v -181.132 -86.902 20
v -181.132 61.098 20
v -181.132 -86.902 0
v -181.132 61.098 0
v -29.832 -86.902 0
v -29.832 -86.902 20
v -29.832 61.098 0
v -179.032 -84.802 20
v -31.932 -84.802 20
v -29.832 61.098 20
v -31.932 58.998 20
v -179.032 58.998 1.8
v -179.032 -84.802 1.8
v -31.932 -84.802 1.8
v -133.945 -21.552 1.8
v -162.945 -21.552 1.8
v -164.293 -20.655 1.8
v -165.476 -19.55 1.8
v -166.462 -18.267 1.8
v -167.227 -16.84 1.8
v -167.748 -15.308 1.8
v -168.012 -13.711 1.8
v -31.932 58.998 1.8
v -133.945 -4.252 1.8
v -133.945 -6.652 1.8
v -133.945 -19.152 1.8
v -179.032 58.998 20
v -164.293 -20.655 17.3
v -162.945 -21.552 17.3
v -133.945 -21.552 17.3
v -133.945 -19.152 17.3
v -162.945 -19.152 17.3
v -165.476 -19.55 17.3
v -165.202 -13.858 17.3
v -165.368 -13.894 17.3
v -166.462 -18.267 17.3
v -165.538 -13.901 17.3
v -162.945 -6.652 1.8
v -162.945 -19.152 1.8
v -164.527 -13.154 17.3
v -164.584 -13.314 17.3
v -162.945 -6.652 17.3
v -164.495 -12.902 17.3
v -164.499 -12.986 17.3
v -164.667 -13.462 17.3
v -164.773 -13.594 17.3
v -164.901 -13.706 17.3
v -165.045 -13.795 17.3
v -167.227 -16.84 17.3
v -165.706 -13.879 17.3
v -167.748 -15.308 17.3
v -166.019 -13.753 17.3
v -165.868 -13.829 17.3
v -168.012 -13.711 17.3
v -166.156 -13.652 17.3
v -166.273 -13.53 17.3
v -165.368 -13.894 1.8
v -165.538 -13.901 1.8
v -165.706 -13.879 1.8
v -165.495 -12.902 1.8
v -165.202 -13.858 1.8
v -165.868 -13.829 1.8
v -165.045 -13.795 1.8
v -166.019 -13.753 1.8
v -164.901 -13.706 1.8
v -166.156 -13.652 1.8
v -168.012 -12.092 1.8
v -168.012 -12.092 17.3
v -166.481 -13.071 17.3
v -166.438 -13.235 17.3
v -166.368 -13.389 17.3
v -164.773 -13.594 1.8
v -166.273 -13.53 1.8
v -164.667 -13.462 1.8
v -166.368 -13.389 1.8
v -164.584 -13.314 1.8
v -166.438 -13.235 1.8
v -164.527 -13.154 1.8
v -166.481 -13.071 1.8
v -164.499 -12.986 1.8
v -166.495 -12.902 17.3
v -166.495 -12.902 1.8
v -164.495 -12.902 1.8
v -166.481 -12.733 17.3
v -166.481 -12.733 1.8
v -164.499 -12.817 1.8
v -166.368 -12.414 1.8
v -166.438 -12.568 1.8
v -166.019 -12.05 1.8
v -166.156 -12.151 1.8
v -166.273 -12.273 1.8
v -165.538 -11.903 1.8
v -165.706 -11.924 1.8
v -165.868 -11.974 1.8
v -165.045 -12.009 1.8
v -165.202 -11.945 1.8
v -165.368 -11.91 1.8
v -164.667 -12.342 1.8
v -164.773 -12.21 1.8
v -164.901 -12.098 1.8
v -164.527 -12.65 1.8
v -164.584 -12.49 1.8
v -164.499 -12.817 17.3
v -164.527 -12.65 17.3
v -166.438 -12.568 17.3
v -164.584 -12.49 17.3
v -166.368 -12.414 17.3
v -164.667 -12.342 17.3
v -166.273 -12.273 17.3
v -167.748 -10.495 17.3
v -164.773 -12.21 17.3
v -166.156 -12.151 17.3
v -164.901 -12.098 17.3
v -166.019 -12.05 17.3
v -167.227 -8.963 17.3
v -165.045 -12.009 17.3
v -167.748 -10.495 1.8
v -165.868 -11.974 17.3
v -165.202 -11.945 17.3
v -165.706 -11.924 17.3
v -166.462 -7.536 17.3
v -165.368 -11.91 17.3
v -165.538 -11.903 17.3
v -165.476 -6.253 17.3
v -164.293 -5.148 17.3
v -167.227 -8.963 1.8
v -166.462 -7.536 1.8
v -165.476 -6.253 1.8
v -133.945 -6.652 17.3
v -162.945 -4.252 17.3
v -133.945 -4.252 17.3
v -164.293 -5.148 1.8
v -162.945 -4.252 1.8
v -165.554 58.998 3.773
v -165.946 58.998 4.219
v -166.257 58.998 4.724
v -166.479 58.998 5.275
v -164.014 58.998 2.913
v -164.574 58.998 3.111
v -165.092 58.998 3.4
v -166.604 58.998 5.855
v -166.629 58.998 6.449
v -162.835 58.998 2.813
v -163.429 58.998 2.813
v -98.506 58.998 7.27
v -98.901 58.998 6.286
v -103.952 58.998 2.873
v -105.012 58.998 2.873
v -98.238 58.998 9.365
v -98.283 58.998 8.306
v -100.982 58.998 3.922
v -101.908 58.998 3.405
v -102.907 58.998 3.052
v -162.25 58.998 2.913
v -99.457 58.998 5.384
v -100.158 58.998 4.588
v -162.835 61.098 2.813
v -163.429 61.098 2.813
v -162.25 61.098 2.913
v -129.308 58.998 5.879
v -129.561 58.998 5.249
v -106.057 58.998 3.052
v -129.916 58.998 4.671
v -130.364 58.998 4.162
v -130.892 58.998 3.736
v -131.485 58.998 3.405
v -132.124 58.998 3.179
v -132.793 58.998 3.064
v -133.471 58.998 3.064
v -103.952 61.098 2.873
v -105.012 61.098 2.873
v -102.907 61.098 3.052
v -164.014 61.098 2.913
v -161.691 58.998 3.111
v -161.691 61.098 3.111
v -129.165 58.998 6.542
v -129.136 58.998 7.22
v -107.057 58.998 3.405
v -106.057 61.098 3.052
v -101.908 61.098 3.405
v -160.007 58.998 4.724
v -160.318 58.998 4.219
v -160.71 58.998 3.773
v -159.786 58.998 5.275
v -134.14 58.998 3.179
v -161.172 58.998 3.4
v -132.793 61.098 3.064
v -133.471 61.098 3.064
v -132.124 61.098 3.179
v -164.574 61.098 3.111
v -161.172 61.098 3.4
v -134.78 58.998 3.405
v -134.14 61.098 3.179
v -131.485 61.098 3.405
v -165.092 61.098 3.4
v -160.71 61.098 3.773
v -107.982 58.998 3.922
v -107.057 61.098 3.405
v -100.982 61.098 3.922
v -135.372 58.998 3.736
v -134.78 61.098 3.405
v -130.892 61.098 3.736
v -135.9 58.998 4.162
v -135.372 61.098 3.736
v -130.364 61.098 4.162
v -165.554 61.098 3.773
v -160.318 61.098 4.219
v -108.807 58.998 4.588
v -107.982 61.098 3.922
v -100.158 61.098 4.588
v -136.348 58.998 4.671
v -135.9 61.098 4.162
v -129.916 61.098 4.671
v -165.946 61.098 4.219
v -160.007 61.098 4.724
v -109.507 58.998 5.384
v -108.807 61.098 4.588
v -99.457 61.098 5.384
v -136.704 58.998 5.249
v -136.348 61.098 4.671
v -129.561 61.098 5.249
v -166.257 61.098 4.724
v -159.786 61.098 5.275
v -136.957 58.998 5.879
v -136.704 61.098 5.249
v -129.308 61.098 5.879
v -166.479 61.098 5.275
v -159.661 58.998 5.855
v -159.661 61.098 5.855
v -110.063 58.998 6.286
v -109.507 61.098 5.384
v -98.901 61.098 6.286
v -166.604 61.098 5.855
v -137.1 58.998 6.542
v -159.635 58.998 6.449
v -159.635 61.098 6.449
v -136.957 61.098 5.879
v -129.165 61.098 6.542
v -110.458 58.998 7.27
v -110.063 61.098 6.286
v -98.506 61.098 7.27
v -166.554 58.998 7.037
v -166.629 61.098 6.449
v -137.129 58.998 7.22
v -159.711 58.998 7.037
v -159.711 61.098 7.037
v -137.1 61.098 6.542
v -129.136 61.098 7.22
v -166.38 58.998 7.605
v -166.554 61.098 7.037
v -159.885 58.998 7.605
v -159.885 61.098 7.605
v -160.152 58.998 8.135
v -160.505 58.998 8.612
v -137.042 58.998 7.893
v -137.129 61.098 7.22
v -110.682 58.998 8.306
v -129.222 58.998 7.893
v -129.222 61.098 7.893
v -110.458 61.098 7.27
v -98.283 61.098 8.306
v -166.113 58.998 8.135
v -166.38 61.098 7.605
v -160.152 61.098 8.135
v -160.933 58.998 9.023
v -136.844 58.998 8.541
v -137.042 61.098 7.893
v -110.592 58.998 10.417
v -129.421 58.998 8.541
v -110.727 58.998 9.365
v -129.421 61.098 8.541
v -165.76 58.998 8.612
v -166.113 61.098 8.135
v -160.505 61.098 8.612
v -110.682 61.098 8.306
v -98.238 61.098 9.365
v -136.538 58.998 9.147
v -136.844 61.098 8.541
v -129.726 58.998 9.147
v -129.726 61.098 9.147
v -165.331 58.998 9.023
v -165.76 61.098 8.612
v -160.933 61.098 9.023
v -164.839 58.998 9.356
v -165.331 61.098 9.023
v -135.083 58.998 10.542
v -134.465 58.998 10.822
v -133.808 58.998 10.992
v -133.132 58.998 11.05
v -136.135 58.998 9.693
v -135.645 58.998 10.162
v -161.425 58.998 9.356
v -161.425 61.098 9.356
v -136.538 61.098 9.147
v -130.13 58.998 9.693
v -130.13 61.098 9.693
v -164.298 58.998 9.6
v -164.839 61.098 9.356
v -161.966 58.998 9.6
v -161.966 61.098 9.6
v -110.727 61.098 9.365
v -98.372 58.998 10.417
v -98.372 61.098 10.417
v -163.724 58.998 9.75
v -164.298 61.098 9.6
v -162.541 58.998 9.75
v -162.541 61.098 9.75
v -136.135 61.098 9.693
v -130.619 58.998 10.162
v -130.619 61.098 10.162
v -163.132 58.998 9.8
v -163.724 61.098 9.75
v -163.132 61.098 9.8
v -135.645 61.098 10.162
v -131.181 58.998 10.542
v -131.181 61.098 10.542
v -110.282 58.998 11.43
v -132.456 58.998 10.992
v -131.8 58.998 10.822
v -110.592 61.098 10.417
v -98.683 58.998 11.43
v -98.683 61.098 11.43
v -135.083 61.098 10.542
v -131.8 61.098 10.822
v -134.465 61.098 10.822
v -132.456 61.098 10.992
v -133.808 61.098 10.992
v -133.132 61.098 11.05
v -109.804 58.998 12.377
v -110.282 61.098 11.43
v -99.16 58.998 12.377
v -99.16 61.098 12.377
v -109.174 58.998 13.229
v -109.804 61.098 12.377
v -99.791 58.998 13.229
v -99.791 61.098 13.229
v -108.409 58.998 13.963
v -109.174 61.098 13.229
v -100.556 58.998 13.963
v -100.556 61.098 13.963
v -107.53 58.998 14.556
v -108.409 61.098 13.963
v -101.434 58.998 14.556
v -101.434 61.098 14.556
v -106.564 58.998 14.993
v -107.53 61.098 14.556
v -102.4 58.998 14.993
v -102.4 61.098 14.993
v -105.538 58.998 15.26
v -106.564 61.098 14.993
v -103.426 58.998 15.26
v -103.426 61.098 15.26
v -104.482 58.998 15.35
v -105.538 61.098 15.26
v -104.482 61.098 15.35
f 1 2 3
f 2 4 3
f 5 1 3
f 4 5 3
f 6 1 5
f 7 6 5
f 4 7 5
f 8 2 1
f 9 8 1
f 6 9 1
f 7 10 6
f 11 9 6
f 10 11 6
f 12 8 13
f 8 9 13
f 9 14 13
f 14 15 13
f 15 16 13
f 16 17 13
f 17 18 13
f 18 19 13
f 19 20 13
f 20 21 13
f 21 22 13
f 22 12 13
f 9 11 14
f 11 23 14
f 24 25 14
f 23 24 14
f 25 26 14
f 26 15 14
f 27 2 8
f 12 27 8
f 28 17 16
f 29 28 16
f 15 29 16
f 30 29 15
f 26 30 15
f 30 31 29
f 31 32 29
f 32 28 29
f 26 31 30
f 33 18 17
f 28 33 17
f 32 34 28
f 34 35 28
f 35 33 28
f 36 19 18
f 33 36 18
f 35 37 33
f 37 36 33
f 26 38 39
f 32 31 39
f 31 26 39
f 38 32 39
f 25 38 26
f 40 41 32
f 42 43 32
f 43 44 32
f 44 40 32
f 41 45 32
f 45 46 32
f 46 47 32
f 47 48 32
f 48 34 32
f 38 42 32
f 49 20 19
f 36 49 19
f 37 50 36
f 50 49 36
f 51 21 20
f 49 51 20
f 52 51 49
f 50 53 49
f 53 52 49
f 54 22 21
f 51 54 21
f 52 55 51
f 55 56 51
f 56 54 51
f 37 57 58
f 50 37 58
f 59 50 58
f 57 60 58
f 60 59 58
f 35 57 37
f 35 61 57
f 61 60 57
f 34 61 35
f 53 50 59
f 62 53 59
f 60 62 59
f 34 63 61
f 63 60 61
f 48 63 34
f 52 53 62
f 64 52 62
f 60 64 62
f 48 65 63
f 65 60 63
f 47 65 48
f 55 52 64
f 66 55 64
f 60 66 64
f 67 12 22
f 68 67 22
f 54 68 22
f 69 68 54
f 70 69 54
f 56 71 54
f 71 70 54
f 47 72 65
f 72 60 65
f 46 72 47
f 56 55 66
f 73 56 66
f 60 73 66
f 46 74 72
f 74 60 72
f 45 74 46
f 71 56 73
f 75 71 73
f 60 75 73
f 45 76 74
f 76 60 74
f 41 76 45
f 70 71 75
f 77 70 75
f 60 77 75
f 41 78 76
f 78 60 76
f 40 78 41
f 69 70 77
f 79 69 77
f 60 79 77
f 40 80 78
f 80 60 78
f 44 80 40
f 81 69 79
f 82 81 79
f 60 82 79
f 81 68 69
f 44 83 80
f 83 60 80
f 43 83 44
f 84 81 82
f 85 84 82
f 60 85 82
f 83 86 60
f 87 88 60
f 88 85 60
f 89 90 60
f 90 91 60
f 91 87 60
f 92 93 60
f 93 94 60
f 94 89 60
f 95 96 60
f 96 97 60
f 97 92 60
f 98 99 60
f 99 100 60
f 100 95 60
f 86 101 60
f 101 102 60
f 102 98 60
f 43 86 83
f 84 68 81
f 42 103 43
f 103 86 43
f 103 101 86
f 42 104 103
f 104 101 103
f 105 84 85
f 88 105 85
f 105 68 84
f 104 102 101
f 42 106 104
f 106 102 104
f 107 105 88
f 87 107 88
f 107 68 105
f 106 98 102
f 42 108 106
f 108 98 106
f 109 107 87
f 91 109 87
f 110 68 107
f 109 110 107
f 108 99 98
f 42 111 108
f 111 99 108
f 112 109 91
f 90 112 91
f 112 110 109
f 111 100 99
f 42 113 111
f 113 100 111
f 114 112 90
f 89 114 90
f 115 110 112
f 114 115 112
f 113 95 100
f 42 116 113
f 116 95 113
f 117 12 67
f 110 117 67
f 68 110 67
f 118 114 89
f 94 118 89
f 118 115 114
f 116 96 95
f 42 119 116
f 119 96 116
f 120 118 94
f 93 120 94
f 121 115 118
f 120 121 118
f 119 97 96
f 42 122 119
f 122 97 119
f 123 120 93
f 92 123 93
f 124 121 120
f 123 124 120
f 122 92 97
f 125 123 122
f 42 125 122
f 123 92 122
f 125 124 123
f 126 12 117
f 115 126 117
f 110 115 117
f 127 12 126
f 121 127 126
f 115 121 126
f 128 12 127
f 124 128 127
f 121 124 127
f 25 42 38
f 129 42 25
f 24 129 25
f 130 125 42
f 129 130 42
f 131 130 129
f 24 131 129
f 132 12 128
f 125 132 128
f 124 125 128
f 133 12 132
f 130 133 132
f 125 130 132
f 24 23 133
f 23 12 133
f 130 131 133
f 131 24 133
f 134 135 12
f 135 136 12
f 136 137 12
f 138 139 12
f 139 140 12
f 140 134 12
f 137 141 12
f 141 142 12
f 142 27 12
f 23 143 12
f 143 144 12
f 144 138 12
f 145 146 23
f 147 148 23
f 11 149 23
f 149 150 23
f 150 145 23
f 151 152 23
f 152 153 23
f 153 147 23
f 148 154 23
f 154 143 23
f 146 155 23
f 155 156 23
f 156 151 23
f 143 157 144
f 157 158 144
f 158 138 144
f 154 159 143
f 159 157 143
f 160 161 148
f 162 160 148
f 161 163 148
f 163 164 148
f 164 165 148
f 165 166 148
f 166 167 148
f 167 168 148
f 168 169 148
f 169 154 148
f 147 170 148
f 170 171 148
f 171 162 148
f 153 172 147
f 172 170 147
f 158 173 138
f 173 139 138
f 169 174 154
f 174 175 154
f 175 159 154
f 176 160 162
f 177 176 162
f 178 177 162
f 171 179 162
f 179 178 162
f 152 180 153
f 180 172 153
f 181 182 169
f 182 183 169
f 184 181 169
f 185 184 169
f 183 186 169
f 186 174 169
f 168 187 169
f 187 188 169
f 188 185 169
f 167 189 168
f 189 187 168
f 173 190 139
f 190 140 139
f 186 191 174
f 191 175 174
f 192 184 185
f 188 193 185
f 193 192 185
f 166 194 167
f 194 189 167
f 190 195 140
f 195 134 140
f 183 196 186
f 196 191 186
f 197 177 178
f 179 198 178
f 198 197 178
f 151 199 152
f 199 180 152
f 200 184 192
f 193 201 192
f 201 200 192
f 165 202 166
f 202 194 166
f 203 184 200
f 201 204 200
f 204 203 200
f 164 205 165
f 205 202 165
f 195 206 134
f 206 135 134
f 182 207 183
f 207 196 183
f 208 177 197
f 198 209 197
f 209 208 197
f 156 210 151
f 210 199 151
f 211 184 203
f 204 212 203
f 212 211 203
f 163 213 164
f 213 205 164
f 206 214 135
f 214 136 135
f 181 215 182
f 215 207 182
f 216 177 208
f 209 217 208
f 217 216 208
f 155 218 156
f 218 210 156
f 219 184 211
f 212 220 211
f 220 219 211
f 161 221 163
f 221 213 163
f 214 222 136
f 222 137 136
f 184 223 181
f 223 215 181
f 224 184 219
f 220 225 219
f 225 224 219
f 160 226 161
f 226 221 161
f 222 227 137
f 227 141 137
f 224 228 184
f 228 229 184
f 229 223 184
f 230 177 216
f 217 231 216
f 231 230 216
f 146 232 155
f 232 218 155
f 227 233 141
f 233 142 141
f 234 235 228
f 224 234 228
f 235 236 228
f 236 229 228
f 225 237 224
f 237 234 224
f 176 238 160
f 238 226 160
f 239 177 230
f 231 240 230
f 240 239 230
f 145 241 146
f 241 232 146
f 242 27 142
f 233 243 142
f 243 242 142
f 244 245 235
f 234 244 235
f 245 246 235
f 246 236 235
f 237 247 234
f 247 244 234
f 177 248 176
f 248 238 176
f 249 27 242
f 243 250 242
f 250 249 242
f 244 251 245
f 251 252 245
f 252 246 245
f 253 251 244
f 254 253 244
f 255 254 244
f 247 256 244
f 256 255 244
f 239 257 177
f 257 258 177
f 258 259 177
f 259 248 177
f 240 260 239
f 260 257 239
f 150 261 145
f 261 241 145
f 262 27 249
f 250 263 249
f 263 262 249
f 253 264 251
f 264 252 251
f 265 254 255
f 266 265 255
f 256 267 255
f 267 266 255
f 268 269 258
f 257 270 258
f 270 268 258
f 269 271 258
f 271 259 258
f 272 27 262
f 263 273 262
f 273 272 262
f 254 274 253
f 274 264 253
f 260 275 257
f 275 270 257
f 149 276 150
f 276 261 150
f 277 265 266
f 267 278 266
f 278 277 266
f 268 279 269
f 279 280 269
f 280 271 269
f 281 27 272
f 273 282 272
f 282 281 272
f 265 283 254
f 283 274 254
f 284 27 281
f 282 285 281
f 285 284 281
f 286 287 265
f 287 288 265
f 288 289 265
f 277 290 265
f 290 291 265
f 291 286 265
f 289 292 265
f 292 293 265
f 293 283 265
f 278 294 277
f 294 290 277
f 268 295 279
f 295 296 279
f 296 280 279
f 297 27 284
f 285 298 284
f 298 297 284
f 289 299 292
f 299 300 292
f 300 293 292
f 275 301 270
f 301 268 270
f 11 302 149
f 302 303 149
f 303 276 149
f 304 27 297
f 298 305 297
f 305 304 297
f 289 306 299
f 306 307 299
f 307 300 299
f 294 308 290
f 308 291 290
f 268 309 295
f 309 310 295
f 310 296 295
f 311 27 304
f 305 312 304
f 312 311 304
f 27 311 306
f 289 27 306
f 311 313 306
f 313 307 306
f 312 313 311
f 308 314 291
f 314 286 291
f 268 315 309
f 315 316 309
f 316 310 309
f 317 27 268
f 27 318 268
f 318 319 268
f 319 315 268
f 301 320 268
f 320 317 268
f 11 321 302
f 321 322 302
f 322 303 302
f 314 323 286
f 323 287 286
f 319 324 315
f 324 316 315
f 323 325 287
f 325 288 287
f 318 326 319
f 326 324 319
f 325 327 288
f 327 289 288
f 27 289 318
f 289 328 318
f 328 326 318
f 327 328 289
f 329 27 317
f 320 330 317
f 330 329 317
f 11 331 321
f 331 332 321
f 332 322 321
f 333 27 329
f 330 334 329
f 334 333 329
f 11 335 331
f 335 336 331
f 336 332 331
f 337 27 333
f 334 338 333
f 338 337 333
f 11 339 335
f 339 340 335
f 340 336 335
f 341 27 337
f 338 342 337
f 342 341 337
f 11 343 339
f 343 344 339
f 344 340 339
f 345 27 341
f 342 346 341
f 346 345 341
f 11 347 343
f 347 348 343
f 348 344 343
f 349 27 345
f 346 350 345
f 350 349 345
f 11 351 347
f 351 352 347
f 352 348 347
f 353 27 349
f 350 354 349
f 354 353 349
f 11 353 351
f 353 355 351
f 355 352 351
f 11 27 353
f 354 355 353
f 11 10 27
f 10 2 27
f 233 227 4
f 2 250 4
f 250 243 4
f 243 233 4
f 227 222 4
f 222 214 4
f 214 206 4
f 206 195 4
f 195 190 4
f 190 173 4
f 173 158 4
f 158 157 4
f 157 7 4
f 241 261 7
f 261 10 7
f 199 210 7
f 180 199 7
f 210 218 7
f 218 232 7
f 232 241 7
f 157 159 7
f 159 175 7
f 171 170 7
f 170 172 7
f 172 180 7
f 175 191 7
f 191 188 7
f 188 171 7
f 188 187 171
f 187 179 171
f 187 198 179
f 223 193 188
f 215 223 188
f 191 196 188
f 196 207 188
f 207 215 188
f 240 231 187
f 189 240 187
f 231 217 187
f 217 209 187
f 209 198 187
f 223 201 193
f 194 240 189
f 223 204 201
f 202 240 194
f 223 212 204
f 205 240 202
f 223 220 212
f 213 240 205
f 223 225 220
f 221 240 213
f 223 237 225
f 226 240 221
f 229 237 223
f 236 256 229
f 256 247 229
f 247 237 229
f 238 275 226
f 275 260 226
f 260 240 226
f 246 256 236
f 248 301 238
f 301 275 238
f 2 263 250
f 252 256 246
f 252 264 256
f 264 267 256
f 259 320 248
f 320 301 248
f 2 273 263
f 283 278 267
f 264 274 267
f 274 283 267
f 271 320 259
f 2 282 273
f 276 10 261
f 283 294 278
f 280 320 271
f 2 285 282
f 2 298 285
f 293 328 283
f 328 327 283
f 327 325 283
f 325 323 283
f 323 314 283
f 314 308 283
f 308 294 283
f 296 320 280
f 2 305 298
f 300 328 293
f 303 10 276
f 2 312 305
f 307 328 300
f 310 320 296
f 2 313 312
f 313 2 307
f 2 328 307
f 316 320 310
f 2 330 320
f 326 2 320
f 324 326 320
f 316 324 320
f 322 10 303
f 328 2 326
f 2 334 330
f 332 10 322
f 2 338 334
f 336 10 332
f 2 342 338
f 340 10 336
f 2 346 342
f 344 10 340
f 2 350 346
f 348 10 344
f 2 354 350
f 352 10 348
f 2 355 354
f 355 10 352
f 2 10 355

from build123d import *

# Parameters (mm, degrees)
CROQUIS1_W              = 151.3
CROQUIS1_H              = 148
SALIENTE_EXTRUIR1_DEPTH = 1.8
CROQUIS2_W              = 151.3
CROQUIS2_H              = 148
CROQUIS2_W_2            = 147.1
CROQUIS2_H_2            = 143.8
SALIENTE_EXTRUIR2_DEPTH = 18.2
CROQUIS4_R              = 6.25
CROQUIS4_R_2            = 3.5
CROQUIS4_R_3            = 4
CORTAR_EXTRUIR1_DEPTH   = 2.1
CROQUIS5_R              = 1
SALIENTE_EXTRUIR3_DEPTH = 15.5


with BuildPart() as part:
    # Croquis1 → Saliente-Extruir1 (new body)
    with BuildSketch(Plane.XY):
        with Locations((-105.482201909, -12.901601831)):
            Rectangle(CROQUIS1_W, CROQUIS1_H)
    extrude(amount=SALIENTE_EXTRUIR1_DEPTH)

    # Croquis2 → Saliente-Extruir2 (add)
    with BuildSketch(Plane.XY.offset(1.8)):
        with Locations((-105.482201909, -12.901601831)):
            Rectangle(CROQUIS2_W, CROQUIS2_H)
        with Locations((-105.482201909, -12.901601831)):
            Rectangle(CROQUIS2_W_2, CROQUIS2_H_2, mode=Mode.SUBTRACT)
    extrude(amount=SALIENTE_EXTRUIR2_DEPTH)

    # Croquis4 → Cortar-Extruir1 (cut)
    with BuildSketch(Plane(origin=(0, 61.098398169, 0), x_dir=(1, 0, 0), z_dir=(0, 1, 0))):
        with Locations(Location((-104.482201909, -9.1, 0), (0, 0, 270))):
            Circle(CROQUIS4_R)
        with Locations(Location((-163.132201909, -6.3, 0), (0, 0, 270))):
            Circle(CROQUIS4_R_2)
        with Locations(Location((-133.132201909, -7.05, 0), (0, 0, 270))):
            Circle(CROQUIS4_R_3)
    extrude(amount=-CORTAR_EXTRUIR1_DEPTH, mode=Mode.SUBTRACT)

    # Croquis5 → Saliente-Extruir3 (add)
    with BuildSketch(Plane.XY.offset(1.8)):
        with BuildLine():
            Line((-133.94514144, -4.251601831), (-133.94514144, -6.651601831))
            Line((-133.94514144, -6.651601831), (-162.94514144, -6.651601831))
            Line((-162.94514144, -6.651601831), (-162.94514144, -19.151601831))
            Line((-162.94514144, -19.151601831), (-133.94514144, -19.151601831))
            Line((-133.94514144, -19.151601831), (-133.94514144, -21.551601831))
            Line((-133.94514144, -21.551601831), (-162.94514144, -21.551601831))
            ThreePointArc((-162.94514144, -21.551601831), (-168.04514144, -12.901601831), (-162.94514144, -4.251601831))
            Line((-162.94514144, -4.251601831), (-133.94514144, -4.251601831))
        make_face()
        with Locations((-165.49514144, -12.901601831)):
            Circle(CROQUIS5_R, mode=Mode.SUBTRACT)
    extrude(amount=SALIENTE_EXTRUIR3_DEPTH)


solid = part.part
